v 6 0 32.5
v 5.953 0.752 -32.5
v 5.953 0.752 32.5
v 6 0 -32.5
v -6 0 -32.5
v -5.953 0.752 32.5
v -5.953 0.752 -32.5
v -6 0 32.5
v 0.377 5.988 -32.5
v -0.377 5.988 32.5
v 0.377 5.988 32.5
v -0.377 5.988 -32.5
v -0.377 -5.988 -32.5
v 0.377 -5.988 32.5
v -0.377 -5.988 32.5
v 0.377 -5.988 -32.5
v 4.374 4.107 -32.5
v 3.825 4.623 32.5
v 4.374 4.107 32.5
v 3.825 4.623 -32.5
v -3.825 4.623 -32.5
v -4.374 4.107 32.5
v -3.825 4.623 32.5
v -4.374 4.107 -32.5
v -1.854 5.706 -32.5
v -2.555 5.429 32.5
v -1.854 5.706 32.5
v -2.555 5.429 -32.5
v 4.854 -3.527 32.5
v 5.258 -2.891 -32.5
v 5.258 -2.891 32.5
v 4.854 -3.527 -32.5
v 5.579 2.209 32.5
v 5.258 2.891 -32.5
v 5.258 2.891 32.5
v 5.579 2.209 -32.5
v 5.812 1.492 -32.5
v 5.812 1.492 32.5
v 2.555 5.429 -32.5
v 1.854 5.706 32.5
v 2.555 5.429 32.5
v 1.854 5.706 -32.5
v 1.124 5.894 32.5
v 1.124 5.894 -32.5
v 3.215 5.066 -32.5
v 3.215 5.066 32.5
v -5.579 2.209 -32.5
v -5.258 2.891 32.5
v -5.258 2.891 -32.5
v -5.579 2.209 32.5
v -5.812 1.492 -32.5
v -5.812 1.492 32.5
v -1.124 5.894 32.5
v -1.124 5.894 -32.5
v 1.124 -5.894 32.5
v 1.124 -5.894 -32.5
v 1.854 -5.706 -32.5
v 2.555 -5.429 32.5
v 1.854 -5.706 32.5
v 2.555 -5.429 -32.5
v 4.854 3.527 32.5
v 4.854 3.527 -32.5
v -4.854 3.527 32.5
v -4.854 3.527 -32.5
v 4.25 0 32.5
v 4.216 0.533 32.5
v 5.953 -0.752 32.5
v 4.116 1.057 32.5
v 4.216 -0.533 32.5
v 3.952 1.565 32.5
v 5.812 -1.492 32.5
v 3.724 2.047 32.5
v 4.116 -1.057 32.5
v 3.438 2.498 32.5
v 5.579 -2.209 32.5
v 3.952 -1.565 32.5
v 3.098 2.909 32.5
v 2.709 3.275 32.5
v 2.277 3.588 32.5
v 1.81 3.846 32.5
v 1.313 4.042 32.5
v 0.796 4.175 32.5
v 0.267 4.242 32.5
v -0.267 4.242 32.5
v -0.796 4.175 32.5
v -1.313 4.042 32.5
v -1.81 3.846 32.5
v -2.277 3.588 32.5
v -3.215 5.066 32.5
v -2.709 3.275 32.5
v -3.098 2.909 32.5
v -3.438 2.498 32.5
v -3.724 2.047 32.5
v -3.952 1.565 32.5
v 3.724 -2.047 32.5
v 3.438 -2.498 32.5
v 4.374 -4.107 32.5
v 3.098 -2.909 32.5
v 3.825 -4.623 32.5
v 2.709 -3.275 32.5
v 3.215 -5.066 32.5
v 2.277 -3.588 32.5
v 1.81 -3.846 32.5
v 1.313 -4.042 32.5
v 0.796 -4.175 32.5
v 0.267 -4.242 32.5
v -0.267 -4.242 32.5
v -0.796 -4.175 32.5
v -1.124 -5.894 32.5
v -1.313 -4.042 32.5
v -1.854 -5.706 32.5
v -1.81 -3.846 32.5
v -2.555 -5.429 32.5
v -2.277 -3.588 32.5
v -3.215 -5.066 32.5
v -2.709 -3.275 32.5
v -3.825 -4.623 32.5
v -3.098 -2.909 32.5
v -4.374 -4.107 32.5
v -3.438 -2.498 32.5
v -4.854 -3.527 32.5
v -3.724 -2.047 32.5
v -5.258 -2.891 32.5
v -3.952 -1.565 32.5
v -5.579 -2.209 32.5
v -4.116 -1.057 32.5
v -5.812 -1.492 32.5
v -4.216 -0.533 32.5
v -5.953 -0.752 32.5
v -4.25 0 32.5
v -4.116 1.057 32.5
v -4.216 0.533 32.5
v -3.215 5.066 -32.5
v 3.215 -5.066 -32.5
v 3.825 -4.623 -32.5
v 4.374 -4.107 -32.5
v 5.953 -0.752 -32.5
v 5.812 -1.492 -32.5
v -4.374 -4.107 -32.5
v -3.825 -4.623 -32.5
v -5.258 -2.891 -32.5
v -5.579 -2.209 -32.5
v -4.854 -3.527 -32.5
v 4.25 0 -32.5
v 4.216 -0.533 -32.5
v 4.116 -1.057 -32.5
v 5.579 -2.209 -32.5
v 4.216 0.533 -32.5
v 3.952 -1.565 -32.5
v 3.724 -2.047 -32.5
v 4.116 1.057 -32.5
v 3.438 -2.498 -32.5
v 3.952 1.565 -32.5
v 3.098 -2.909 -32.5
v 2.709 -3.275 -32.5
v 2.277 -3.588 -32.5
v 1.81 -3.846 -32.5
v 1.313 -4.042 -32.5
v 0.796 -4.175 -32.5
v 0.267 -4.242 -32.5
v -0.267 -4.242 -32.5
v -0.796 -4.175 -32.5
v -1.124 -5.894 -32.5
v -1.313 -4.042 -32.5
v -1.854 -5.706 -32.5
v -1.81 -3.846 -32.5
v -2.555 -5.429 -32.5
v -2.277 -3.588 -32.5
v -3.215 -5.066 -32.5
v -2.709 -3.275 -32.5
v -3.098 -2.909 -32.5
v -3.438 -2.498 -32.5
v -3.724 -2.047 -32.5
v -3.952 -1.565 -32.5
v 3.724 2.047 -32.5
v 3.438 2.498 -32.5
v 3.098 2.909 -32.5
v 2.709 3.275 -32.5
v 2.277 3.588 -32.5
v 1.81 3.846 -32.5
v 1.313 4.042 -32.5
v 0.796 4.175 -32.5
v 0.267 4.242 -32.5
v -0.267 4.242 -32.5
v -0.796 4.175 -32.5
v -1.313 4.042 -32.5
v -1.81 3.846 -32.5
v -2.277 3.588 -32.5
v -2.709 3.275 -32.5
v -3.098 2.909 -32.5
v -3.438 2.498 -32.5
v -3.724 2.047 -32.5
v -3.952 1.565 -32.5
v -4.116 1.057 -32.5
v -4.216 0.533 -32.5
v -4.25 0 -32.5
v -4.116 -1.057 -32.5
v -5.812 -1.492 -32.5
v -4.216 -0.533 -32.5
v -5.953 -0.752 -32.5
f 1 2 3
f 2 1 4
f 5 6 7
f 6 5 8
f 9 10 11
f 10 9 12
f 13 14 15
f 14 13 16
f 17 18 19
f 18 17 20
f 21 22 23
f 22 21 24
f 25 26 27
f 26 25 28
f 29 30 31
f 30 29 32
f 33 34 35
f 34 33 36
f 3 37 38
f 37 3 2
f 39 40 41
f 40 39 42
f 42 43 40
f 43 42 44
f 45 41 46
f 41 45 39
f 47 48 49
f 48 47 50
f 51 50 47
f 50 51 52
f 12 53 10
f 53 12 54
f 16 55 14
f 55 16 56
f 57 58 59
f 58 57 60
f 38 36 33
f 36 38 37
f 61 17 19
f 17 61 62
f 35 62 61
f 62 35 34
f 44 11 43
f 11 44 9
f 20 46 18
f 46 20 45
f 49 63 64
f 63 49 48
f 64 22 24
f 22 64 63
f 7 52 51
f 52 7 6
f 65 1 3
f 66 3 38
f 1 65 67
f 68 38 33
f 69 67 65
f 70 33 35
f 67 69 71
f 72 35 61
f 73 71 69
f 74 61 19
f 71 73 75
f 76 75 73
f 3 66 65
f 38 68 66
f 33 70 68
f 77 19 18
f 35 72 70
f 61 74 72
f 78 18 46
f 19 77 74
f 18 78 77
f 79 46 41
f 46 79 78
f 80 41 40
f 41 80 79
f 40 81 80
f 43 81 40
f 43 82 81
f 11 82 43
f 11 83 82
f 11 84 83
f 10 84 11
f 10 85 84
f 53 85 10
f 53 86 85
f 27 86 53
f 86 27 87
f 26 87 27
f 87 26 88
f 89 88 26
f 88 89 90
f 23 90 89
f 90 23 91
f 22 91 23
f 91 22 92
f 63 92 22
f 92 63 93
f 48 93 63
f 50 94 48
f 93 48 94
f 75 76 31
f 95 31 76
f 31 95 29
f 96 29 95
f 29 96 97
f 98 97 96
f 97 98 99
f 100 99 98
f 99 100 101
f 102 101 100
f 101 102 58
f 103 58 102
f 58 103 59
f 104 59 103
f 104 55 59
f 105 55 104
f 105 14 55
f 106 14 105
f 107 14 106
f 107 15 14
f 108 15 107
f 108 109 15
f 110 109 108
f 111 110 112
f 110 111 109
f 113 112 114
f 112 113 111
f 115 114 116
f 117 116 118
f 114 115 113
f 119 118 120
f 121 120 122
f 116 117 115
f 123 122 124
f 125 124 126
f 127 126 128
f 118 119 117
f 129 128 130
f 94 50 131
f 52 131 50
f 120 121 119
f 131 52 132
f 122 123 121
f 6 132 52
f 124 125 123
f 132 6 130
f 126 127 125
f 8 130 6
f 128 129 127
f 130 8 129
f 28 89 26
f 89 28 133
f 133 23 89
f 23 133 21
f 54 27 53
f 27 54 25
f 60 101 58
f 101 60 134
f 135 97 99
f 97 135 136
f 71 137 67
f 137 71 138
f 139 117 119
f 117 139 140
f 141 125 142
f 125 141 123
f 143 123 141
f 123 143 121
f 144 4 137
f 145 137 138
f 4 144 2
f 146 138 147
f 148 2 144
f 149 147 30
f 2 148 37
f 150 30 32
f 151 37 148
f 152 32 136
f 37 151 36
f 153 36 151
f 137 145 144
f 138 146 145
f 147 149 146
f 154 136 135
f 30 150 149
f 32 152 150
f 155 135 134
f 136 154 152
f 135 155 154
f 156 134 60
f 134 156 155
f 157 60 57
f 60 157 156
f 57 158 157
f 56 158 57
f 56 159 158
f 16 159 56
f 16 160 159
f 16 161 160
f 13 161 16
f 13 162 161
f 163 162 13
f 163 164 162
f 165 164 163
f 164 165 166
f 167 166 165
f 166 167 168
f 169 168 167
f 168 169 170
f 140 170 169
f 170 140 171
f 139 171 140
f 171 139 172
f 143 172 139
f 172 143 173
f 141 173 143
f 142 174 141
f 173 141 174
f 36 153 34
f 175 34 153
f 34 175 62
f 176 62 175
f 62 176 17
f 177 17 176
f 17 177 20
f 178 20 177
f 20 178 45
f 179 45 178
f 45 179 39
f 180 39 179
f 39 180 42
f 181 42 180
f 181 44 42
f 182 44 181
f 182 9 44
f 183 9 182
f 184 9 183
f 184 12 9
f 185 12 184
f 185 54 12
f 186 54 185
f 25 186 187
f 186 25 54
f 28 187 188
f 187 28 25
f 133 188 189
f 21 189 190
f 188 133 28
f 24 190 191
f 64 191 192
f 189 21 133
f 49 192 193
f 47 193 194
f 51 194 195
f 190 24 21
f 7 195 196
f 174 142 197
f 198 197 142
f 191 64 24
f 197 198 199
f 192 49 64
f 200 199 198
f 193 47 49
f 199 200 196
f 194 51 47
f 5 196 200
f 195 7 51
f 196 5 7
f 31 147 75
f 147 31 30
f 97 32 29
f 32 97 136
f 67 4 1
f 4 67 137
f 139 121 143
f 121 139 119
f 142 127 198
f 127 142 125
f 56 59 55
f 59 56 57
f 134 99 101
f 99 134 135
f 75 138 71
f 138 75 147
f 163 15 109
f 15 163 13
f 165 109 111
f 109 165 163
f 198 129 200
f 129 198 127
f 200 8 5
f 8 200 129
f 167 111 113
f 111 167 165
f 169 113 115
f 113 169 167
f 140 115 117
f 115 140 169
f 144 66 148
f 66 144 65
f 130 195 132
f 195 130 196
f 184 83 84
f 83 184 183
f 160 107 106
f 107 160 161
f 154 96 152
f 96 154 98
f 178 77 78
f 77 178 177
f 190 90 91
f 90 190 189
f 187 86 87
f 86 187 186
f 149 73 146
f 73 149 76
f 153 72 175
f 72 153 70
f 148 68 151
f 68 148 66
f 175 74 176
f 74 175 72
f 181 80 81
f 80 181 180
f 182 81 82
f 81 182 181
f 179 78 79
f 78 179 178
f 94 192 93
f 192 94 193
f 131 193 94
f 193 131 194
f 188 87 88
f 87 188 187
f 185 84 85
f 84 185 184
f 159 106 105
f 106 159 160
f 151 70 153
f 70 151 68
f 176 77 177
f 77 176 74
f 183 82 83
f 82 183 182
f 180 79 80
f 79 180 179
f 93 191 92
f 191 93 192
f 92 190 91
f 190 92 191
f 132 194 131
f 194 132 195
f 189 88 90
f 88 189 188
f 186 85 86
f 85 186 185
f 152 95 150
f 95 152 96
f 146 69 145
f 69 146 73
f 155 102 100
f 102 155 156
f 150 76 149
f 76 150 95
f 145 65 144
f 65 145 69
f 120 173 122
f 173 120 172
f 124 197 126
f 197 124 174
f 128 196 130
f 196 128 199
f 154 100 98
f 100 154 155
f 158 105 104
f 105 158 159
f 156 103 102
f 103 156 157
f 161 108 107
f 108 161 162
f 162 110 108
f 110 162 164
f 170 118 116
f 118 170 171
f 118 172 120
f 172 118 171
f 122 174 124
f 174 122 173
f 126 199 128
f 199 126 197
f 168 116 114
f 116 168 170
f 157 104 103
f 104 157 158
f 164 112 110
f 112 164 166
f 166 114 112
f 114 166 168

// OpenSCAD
$fn = 50;


difference() {
	union() {
		translate(v = [0, 0, -32.5000000000]) {
			cylinder(h = 65, r = 6.0000000000);
		}
	}
	union() {
		translate(v = [0, 0, -100.0000000000]) {
			cylinder(h = 200, r = 4.2500000000);
		}
	}
}
